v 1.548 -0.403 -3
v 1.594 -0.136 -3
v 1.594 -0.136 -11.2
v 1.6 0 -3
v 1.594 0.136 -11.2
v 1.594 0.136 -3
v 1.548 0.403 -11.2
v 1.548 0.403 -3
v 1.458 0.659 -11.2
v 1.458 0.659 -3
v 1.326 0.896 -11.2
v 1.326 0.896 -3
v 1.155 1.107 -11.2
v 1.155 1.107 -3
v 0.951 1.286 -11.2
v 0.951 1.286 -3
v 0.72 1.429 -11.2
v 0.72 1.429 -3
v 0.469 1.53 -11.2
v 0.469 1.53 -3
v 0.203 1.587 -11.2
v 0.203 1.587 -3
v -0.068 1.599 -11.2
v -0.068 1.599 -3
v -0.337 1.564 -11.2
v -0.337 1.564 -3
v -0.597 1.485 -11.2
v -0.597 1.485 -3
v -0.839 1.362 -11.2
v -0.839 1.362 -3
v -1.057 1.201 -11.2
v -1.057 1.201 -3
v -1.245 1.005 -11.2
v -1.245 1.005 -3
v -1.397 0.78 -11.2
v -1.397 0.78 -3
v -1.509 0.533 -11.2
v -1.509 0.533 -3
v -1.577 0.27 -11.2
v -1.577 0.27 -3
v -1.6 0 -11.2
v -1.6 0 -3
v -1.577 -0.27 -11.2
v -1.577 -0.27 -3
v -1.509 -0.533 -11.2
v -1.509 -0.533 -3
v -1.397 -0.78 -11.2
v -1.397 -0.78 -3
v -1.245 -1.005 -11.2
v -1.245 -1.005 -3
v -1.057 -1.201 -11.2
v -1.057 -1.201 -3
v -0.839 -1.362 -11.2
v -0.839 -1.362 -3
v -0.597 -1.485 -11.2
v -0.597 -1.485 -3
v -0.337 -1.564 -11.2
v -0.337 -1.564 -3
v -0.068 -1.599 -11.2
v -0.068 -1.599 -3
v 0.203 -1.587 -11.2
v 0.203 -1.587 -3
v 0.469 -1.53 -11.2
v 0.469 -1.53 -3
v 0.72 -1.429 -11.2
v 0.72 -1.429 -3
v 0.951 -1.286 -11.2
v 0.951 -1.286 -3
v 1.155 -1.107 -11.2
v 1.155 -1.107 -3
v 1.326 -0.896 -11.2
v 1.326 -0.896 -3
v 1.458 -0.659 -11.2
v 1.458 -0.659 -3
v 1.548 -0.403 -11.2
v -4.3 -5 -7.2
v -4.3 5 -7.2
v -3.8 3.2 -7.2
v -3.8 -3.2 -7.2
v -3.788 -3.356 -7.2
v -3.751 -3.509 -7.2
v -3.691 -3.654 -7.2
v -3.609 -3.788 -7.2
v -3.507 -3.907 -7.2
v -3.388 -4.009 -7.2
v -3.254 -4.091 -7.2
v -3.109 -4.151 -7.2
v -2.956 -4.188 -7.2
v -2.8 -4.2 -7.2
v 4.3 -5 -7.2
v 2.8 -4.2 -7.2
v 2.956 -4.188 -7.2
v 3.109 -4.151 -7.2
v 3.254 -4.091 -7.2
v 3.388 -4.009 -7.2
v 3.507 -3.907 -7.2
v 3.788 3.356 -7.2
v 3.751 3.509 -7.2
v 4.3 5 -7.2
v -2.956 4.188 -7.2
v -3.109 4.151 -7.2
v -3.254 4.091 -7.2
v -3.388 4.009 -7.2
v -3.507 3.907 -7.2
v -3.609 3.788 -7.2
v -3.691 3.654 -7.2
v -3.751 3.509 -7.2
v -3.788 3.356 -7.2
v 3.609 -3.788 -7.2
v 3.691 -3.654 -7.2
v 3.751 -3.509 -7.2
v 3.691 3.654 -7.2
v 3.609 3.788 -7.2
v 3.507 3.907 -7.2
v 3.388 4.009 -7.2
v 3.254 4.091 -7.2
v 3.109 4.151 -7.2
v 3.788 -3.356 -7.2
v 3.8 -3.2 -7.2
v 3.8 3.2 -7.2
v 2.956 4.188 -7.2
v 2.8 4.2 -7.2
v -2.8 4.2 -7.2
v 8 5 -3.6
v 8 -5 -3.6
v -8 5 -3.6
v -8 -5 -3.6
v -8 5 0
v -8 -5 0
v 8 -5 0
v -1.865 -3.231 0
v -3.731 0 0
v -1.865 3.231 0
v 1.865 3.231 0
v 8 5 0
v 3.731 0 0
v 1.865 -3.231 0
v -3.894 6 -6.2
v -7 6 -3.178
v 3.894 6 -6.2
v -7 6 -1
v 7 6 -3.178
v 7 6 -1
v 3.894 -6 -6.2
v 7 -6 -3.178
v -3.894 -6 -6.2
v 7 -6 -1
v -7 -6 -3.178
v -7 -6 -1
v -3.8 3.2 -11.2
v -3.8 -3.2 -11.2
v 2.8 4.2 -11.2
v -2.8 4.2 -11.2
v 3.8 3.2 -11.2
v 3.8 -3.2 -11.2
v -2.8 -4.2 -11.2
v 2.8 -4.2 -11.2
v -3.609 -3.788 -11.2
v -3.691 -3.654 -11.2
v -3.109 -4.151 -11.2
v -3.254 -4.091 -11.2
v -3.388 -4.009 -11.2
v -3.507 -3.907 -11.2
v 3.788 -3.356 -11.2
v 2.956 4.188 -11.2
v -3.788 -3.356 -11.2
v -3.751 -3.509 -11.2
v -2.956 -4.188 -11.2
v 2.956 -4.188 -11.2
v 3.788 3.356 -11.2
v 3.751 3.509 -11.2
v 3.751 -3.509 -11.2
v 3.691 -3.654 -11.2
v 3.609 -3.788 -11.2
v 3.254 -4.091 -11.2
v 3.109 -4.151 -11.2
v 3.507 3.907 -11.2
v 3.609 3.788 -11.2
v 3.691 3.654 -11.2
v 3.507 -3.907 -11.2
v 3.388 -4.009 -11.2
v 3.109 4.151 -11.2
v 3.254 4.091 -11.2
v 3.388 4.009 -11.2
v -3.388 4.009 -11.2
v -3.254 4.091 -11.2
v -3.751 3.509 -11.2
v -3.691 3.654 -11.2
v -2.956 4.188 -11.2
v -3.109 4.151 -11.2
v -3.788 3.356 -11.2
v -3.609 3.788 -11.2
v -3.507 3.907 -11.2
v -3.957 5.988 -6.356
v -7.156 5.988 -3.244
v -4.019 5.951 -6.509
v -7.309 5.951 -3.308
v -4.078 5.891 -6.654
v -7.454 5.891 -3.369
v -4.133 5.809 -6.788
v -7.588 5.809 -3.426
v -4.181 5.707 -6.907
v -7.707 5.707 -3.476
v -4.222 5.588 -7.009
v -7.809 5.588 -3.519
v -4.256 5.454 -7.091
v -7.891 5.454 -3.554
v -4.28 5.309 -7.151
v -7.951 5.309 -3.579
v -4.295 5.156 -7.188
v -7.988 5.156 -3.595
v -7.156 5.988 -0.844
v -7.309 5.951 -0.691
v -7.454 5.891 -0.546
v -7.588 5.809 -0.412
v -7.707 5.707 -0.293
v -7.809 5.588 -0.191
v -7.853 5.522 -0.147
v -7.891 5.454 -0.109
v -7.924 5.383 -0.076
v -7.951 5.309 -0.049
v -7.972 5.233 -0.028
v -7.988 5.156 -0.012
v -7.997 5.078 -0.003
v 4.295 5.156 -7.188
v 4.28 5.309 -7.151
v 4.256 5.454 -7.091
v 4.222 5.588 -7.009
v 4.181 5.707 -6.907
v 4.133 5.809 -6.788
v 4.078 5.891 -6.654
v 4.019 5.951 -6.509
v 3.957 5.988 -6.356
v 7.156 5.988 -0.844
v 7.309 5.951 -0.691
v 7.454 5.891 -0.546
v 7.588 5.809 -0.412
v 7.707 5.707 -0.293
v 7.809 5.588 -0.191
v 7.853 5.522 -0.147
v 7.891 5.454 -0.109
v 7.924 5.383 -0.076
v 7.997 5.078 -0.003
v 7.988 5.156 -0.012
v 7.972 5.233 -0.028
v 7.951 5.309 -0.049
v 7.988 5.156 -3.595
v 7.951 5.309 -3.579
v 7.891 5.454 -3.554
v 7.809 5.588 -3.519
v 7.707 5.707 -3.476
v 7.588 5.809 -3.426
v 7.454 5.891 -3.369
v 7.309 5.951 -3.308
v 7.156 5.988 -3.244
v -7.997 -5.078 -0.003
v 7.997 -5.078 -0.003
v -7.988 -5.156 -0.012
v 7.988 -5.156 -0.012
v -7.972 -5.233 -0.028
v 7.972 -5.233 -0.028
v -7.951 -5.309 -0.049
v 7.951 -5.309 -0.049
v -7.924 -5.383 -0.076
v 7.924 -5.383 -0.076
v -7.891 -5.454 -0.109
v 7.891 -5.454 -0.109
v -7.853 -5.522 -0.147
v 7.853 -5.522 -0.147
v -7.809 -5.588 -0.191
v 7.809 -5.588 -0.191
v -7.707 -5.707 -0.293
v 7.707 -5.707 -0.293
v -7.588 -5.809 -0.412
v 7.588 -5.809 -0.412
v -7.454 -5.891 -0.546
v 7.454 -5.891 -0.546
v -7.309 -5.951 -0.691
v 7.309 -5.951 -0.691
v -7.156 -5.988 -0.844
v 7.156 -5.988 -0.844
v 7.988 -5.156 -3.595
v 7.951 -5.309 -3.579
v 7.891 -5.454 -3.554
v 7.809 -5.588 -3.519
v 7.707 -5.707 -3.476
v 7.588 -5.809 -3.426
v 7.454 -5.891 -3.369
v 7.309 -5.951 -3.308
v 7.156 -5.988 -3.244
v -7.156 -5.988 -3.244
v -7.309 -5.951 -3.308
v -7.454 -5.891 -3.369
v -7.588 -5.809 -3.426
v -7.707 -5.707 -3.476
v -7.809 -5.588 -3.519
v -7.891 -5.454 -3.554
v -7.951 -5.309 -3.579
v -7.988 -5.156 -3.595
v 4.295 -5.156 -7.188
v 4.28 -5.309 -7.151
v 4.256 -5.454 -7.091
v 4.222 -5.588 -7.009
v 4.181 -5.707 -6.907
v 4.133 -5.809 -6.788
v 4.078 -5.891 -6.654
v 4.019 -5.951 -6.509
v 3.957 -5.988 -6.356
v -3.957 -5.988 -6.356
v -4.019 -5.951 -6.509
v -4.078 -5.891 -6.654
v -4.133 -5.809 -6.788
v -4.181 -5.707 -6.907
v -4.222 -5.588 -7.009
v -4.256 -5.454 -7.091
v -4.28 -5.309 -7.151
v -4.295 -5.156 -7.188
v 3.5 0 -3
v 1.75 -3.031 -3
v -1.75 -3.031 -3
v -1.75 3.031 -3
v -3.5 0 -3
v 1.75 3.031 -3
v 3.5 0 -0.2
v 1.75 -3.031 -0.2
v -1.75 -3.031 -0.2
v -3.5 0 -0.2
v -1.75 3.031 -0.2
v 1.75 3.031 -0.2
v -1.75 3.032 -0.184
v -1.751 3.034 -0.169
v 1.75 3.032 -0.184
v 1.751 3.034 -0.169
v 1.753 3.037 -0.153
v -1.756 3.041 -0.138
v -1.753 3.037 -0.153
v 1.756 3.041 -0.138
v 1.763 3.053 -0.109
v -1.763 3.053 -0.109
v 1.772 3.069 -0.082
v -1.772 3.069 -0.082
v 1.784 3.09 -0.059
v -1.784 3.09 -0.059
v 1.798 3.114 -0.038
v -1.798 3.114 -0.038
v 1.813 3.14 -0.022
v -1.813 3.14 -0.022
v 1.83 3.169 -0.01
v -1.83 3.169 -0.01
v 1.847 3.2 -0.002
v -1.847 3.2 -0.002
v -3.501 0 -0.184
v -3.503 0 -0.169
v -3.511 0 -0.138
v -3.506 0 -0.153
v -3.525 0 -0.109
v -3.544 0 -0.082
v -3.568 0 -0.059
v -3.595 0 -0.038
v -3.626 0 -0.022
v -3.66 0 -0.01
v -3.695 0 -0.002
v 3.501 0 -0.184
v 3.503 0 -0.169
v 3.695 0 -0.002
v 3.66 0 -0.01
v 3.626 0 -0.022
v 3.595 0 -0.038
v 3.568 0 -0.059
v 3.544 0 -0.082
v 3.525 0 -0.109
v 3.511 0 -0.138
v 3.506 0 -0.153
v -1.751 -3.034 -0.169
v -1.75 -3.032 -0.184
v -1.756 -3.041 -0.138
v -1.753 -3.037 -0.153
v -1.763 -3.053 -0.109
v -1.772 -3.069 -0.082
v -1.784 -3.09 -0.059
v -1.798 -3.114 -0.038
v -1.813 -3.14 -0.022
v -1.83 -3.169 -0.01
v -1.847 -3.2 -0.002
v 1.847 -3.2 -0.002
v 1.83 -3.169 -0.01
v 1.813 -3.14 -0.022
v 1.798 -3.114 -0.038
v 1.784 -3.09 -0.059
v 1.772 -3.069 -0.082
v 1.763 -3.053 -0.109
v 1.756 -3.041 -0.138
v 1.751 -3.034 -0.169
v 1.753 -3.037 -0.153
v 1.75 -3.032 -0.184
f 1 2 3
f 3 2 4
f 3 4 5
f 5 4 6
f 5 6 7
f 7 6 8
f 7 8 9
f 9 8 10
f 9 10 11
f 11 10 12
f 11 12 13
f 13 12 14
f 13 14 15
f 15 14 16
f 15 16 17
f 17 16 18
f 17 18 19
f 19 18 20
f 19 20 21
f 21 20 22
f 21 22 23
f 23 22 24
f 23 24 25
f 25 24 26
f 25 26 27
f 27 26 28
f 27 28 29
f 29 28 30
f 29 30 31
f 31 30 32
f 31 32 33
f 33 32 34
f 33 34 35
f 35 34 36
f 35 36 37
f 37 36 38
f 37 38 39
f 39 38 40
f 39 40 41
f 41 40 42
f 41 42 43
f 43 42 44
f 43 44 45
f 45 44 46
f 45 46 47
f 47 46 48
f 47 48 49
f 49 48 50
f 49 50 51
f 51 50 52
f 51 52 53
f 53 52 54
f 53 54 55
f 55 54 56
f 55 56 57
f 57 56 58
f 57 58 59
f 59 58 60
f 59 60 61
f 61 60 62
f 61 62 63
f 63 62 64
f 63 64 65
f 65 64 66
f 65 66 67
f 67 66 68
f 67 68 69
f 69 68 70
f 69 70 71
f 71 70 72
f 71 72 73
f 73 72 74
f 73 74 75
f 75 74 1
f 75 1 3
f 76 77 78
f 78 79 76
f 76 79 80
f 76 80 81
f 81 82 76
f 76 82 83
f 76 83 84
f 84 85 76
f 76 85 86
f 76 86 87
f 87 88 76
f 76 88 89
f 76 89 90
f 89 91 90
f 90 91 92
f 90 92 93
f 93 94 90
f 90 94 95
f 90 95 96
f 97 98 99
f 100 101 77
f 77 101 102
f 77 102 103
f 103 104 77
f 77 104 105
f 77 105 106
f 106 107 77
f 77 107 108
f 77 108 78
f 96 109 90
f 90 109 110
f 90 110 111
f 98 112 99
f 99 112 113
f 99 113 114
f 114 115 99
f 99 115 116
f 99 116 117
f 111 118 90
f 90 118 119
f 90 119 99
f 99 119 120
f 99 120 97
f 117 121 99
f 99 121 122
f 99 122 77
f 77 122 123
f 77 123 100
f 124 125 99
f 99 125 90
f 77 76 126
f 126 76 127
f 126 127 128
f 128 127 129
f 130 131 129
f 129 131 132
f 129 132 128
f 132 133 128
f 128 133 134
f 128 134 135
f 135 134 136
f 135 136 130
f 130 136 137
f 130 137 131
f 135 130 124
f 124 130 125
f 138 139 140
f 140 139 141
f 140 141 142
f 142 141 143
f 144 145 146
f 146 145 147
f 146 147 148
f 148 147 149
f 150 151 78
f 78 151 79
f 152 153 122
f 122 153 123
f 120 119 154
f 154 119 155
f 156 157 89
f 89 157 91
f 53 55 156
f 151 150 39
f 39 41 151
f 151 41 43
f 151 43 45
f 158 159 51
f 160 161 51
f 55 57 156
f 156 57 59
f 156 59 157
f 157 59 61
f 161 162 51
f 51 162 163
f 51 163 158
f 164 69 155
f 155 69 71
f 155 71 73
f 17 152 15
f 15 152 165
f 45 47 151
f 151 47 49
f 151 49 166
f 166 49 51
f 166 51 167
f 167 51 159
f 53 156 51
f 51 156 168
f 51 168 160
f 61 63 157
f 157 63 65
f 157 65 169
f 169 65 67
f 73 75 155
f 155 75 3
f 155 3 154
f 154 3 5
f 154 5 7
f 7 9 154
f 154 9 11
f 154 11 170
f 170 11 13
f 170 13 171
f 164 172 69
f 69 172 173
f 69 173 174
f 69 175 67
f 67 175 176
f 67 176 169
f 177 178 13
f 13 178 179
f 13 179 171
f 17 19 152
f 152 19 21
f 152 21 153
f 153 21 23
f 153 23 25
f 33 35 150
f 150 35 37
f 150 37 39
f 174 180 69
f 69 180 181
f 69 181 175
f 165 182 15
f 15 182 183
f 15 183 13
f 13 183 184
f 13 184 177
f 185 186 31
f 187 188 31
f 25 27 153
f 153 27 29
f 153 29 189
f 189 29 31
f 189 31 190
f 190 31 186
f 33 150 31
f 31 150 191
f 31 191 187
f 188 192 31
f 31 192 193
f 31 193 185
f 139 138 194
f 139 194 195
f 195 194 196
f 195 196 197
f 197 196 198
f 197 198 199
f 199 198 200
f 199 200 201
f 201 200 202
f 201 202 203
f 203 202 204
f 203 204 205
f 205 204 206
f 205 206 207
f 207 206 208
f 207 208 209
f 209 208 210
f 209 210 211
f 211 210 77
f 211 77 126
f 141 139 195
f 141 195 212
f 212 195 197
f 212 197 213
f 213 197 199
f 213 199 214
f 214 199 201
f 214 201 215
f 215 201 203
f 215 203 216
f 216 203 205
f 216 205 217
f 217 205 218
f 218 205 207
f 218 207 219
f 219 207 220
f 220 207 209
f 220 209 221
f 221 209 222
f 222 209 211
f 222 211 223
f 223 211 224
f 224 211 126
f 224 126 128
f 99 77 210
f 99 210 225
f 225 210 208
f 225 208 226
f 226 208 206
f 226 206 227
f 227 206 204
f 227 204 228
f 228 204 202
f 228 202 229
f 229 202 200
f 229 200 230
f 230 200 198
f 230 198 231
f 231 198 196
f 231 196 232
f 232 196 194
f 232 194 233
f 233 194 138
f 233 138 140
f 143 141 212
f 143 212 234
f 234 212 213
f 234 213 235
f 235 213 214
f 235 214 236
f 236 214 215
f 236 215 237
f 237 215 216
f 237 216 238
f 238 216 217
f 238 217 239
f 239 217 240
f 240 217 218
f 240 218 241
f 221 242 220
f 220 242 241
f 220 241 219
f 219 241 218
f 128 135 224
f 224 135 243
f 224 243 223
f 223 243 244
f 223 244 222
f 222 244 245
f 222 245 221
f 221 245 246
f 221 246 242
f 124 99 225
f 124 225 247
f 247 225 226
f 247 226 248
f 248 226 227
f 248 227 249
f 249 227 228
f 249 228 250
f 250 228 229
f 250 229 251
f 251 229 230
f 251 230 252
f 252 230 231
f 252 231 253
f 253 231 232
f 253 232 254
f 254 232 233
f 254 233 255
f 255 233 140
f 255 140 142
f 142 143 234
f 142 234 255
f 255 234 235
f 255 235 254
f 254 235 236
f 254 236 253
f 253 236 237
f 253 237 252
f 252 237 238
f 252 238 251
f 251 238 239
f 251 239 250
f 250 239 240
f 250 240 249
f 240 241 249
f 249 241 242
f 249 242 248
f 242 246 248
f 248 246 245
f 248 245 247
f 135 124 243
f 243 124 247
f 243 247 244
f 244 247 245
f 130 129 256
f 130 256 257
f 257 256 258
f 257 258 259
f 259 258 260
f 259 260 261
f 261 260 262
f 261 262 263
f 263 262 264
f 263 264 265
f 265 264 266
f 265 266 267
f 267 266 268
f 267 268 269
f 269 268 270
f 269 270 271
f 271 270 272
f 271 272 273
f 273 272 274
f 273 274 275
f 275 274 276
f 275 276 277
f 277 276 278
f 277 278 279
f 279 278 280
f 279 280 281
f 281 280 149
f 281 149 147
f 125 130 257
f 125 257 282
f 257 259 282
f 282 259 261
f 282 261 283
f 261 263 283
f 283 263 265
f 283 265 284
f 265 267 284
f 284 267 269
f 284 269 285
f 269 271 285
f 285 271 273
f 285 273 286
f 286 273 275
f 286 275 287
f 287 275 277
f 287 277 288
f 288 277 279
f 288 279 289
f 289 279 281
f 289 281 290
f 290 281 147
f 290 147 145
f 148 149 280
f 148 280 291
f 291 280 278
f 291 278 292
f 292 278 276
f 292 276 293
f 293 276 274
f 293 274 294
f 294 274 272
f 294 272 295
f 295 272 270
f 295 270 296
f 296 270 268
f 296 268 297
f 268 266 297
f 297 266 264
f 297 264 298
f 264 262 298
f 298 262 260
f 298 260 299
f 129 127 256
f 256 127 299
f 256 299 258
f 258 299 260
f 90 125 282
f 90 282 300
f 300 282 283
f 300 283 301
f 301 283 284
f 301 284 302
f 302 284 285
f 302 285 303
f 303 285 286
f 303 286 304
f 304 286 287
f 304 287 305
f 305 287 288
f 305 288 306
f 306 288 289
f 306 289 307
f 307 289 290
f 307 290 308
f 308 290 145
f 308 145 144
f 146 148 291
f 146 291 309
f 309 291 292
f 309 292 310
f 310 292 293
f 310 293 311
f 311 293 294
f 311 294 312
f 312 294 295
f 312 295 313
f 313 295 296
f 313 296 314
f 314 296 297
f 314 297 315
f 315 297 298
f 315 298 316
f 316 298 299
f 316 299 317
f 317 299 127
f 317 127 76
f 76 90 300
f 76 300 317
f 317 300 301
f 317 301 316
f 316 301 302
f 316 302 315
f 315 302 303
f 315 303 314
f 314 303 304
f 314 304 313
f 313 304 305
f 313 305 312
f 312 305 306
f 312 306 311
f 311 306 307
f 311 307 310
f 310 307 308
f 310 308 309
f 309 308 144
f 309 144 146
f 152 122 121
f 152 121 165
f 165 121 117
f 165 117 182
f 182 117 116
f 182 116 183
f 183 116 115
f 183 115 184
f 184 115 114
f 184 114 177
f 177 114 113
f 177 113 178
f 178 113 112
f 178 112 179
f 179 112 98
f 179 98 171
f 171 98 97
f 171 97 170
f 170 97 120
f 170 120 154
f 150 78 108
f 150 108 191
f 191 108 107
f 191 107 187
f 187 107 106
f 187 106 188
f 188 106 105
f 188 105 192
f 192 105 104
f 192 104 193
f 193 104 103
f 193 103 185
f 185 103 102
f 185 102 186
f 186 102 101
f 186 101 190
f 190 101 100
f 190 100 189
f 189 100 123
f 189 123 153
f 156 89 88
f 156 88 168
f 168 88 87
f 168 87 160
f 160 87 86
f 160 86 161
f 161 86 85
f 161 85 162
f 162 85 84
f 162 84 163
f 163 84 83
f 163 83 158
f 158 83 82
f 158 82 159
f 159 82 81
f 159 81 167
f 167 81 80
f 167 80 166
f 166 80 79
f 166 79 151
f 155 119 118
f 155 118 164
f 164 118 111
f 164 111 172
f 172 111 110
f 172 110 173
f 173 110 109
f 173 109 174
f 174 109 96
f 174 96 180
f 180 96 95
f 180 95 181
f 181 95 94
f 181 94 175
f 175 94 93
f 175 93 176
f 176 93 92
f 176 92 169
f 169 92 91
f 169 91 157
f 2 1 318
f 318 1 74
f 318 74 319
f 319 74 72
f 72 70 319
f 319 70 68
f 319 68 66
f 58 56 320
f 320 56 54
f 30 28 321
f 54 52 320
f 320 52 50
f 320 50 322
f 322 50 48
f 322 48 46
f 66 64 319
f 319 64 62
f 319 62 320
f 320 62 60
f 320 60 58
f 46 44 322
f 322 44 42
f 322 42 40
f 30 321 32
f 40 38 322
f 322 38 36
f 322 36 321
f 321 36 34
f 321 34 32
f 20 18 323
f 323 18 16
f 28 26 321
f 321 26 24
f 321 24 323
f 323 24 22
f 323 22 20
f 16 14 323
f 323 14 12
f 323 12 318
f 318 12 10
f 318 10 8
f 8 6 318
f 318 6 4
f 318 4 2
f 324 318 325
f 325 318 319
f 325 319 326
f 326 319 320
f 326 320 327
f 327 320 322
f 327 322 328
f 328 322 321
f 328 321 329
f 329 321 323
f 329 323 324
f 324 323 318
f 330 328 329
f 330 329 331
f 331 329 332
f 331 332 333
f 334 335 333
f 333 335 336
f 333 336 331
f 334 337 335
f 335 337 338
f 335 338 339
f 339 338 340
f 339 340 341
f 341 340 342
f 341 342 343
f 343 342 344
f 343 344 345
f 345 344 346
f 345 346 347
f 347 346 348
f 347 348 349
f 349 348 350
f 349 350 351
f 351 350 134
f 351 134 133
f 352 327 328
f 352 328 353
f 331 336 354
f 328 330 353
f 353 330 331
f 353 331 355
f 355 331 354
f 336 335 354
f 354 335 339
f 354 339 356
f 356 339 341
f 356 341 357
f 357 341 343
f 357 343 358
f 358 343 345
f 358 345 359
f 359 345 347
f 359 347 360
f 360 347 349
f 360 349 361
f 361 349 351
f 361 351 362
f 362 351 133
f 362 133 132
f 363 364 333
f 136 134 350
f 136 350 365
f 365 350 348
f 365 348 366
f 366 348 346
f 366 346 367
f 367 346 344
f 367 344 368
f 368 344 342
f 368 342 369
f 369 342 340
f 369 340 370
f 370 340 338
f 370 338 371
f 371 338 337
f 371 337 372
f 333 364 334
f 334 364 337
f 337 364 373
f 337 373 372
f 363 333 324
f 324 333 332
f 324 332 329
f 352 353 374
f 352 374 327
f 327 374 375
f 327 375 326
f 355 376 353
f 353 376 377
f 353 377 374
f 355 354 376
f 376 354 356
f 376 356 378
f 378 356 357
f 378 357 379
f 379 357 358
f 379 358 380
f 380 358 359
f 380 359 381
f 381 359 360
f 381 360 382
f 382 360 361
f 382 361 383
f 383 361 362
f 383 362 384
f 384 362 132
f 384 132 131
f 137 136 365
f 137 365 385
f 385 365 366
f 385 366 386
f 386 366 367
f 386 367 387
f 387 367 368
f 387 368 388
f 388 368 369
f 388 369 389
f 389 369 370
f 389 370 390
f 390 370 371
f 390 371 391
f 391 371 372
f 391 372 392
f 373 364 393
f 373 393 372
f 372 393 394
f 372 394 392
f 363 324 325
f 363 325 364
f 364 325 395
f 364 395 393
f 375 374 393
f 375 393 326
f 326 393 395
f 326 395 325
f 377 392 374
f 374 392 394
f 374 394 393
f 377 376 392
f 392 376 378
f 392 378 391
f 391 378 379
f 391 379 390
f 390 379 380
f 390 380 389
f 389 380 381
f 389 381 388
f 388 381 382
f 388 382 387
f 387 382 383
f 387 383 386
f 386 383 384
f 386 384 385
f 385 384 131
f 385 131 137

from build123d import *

# Parameters (mm, degrees)
BOSS_EXTRUDE1_DEPTH = 6
SKETCH2_W           = 7.6
SKETCH2_H           = 8.4
BOSS_EXTRUDE2_DEPTH = 4
FILLET1_R           = 1
SKETCH3_R           = 1.6
CUT_EXTRUDE1_DEPTH  = 12.2
FILLET2_R           = 1
CUT_EXTRUDE2_DEPTH  = 3
FILLET3_R           = 0.2


with BuildPart() as part:
    # Sketch1 → Boss-Extrude1 (new body, symmetric)
    with BuildSketch(Plane(origin=(0, 0, 0), x_dir=(1, 0, 0), z_dir=(0, 1, 0))):
        Polygon((-8, 0), (8, 0), (8, 3.6), (4.3, 7.2), (-4.3, 7.2), (-8, 3.6), align=None)
    extrude(amount=BOSS_EXTRUDE1_DEPTH, both=True)

    # Sketch2 → Boss-Extrude2 (add)
    with BuildSketch(Plane(origin=(0, 0, -7.2), x_dir=(-1, 0, 0), z_dir=(0, 0, -1))):
        Rectangle(SKETCH2_W, SKETCH2_H)
    extrude(amount=BOSS_EXTRUDE2_DEPTH)

    # Fillet1
    fillet1_edges = [part.edges().sort_by_distance(p)[0] for p in [
        (-6.15, 6, -5.4),
        (-8, 6, -1.8),
        (0, 6, 0),
        (8, 6, -1.8),
        (6.15, 6, -5.4),
        (8, -6, -1.8),
        (0, -6, 0),
        (-8, -6, -1.8),
        (-6.15, -6, -5.4),
        (0, -6, -7.2),
        (6.15, -6, -5.4),
        (0, 6, -7.2),
    ]]
    fillet(fillet1_edges, radius=FILLET1_R)

    # Sketch3 → Cut-Extrude1 (cut, through all)
    with BuildSketch(Plane(origin=(0, 0, -11.2), x_dir=(-1, 0, 0), z_dir=(0, 0, -1))):
        Circle(SKETCH3_R)
    extrude(amount=-CUT_EXTRUDE1_DEPTH, mode=Mode.SUBTRACT)

    # Fillet2
    fillet2_edges = [part.edges().sort_by_distance(p)[0] for p in [
        (-3.8, -4.2, -9.2),
        (-3.8, 4.2, -9.2),
        (3.8, 4.2, -9.2),
        (3.8, -4.2, -9.2),
    ]]
    fillet(fillet2_edges, radius=FILLET2_R)

    # Sketch4 → Cut-Extrude2 (cut)
    with BuildSketch(Plane.XY):
        Polygon((3.5, 0), (1.75, 3.031088913), (-1.75, 3.031088913), (-3.5, 0), (-1.75, -3.031088913), (1.75, -3.031088913), align=None)
    extrude(amount=-CUT_EXTRUDE2_DEPTH, mode=Mode.SUBTRACT)

    # Fillet3
    fillet3_edges = [part.edges().sort_by_distance(p)[0] for p in [
        (2.625, -1.515544457, 0),
        (2.625, 1.515544457, 0),
        (0, 3.031088913, 0),
        (-2.625, 1.515544457, 0),
        (-2.625, -1.515544457, 0),
        (0, -3.031088913, 0),
    ]]
    fillet(fillet3_edges, radius=FILLET3_R)


solid = part.part
